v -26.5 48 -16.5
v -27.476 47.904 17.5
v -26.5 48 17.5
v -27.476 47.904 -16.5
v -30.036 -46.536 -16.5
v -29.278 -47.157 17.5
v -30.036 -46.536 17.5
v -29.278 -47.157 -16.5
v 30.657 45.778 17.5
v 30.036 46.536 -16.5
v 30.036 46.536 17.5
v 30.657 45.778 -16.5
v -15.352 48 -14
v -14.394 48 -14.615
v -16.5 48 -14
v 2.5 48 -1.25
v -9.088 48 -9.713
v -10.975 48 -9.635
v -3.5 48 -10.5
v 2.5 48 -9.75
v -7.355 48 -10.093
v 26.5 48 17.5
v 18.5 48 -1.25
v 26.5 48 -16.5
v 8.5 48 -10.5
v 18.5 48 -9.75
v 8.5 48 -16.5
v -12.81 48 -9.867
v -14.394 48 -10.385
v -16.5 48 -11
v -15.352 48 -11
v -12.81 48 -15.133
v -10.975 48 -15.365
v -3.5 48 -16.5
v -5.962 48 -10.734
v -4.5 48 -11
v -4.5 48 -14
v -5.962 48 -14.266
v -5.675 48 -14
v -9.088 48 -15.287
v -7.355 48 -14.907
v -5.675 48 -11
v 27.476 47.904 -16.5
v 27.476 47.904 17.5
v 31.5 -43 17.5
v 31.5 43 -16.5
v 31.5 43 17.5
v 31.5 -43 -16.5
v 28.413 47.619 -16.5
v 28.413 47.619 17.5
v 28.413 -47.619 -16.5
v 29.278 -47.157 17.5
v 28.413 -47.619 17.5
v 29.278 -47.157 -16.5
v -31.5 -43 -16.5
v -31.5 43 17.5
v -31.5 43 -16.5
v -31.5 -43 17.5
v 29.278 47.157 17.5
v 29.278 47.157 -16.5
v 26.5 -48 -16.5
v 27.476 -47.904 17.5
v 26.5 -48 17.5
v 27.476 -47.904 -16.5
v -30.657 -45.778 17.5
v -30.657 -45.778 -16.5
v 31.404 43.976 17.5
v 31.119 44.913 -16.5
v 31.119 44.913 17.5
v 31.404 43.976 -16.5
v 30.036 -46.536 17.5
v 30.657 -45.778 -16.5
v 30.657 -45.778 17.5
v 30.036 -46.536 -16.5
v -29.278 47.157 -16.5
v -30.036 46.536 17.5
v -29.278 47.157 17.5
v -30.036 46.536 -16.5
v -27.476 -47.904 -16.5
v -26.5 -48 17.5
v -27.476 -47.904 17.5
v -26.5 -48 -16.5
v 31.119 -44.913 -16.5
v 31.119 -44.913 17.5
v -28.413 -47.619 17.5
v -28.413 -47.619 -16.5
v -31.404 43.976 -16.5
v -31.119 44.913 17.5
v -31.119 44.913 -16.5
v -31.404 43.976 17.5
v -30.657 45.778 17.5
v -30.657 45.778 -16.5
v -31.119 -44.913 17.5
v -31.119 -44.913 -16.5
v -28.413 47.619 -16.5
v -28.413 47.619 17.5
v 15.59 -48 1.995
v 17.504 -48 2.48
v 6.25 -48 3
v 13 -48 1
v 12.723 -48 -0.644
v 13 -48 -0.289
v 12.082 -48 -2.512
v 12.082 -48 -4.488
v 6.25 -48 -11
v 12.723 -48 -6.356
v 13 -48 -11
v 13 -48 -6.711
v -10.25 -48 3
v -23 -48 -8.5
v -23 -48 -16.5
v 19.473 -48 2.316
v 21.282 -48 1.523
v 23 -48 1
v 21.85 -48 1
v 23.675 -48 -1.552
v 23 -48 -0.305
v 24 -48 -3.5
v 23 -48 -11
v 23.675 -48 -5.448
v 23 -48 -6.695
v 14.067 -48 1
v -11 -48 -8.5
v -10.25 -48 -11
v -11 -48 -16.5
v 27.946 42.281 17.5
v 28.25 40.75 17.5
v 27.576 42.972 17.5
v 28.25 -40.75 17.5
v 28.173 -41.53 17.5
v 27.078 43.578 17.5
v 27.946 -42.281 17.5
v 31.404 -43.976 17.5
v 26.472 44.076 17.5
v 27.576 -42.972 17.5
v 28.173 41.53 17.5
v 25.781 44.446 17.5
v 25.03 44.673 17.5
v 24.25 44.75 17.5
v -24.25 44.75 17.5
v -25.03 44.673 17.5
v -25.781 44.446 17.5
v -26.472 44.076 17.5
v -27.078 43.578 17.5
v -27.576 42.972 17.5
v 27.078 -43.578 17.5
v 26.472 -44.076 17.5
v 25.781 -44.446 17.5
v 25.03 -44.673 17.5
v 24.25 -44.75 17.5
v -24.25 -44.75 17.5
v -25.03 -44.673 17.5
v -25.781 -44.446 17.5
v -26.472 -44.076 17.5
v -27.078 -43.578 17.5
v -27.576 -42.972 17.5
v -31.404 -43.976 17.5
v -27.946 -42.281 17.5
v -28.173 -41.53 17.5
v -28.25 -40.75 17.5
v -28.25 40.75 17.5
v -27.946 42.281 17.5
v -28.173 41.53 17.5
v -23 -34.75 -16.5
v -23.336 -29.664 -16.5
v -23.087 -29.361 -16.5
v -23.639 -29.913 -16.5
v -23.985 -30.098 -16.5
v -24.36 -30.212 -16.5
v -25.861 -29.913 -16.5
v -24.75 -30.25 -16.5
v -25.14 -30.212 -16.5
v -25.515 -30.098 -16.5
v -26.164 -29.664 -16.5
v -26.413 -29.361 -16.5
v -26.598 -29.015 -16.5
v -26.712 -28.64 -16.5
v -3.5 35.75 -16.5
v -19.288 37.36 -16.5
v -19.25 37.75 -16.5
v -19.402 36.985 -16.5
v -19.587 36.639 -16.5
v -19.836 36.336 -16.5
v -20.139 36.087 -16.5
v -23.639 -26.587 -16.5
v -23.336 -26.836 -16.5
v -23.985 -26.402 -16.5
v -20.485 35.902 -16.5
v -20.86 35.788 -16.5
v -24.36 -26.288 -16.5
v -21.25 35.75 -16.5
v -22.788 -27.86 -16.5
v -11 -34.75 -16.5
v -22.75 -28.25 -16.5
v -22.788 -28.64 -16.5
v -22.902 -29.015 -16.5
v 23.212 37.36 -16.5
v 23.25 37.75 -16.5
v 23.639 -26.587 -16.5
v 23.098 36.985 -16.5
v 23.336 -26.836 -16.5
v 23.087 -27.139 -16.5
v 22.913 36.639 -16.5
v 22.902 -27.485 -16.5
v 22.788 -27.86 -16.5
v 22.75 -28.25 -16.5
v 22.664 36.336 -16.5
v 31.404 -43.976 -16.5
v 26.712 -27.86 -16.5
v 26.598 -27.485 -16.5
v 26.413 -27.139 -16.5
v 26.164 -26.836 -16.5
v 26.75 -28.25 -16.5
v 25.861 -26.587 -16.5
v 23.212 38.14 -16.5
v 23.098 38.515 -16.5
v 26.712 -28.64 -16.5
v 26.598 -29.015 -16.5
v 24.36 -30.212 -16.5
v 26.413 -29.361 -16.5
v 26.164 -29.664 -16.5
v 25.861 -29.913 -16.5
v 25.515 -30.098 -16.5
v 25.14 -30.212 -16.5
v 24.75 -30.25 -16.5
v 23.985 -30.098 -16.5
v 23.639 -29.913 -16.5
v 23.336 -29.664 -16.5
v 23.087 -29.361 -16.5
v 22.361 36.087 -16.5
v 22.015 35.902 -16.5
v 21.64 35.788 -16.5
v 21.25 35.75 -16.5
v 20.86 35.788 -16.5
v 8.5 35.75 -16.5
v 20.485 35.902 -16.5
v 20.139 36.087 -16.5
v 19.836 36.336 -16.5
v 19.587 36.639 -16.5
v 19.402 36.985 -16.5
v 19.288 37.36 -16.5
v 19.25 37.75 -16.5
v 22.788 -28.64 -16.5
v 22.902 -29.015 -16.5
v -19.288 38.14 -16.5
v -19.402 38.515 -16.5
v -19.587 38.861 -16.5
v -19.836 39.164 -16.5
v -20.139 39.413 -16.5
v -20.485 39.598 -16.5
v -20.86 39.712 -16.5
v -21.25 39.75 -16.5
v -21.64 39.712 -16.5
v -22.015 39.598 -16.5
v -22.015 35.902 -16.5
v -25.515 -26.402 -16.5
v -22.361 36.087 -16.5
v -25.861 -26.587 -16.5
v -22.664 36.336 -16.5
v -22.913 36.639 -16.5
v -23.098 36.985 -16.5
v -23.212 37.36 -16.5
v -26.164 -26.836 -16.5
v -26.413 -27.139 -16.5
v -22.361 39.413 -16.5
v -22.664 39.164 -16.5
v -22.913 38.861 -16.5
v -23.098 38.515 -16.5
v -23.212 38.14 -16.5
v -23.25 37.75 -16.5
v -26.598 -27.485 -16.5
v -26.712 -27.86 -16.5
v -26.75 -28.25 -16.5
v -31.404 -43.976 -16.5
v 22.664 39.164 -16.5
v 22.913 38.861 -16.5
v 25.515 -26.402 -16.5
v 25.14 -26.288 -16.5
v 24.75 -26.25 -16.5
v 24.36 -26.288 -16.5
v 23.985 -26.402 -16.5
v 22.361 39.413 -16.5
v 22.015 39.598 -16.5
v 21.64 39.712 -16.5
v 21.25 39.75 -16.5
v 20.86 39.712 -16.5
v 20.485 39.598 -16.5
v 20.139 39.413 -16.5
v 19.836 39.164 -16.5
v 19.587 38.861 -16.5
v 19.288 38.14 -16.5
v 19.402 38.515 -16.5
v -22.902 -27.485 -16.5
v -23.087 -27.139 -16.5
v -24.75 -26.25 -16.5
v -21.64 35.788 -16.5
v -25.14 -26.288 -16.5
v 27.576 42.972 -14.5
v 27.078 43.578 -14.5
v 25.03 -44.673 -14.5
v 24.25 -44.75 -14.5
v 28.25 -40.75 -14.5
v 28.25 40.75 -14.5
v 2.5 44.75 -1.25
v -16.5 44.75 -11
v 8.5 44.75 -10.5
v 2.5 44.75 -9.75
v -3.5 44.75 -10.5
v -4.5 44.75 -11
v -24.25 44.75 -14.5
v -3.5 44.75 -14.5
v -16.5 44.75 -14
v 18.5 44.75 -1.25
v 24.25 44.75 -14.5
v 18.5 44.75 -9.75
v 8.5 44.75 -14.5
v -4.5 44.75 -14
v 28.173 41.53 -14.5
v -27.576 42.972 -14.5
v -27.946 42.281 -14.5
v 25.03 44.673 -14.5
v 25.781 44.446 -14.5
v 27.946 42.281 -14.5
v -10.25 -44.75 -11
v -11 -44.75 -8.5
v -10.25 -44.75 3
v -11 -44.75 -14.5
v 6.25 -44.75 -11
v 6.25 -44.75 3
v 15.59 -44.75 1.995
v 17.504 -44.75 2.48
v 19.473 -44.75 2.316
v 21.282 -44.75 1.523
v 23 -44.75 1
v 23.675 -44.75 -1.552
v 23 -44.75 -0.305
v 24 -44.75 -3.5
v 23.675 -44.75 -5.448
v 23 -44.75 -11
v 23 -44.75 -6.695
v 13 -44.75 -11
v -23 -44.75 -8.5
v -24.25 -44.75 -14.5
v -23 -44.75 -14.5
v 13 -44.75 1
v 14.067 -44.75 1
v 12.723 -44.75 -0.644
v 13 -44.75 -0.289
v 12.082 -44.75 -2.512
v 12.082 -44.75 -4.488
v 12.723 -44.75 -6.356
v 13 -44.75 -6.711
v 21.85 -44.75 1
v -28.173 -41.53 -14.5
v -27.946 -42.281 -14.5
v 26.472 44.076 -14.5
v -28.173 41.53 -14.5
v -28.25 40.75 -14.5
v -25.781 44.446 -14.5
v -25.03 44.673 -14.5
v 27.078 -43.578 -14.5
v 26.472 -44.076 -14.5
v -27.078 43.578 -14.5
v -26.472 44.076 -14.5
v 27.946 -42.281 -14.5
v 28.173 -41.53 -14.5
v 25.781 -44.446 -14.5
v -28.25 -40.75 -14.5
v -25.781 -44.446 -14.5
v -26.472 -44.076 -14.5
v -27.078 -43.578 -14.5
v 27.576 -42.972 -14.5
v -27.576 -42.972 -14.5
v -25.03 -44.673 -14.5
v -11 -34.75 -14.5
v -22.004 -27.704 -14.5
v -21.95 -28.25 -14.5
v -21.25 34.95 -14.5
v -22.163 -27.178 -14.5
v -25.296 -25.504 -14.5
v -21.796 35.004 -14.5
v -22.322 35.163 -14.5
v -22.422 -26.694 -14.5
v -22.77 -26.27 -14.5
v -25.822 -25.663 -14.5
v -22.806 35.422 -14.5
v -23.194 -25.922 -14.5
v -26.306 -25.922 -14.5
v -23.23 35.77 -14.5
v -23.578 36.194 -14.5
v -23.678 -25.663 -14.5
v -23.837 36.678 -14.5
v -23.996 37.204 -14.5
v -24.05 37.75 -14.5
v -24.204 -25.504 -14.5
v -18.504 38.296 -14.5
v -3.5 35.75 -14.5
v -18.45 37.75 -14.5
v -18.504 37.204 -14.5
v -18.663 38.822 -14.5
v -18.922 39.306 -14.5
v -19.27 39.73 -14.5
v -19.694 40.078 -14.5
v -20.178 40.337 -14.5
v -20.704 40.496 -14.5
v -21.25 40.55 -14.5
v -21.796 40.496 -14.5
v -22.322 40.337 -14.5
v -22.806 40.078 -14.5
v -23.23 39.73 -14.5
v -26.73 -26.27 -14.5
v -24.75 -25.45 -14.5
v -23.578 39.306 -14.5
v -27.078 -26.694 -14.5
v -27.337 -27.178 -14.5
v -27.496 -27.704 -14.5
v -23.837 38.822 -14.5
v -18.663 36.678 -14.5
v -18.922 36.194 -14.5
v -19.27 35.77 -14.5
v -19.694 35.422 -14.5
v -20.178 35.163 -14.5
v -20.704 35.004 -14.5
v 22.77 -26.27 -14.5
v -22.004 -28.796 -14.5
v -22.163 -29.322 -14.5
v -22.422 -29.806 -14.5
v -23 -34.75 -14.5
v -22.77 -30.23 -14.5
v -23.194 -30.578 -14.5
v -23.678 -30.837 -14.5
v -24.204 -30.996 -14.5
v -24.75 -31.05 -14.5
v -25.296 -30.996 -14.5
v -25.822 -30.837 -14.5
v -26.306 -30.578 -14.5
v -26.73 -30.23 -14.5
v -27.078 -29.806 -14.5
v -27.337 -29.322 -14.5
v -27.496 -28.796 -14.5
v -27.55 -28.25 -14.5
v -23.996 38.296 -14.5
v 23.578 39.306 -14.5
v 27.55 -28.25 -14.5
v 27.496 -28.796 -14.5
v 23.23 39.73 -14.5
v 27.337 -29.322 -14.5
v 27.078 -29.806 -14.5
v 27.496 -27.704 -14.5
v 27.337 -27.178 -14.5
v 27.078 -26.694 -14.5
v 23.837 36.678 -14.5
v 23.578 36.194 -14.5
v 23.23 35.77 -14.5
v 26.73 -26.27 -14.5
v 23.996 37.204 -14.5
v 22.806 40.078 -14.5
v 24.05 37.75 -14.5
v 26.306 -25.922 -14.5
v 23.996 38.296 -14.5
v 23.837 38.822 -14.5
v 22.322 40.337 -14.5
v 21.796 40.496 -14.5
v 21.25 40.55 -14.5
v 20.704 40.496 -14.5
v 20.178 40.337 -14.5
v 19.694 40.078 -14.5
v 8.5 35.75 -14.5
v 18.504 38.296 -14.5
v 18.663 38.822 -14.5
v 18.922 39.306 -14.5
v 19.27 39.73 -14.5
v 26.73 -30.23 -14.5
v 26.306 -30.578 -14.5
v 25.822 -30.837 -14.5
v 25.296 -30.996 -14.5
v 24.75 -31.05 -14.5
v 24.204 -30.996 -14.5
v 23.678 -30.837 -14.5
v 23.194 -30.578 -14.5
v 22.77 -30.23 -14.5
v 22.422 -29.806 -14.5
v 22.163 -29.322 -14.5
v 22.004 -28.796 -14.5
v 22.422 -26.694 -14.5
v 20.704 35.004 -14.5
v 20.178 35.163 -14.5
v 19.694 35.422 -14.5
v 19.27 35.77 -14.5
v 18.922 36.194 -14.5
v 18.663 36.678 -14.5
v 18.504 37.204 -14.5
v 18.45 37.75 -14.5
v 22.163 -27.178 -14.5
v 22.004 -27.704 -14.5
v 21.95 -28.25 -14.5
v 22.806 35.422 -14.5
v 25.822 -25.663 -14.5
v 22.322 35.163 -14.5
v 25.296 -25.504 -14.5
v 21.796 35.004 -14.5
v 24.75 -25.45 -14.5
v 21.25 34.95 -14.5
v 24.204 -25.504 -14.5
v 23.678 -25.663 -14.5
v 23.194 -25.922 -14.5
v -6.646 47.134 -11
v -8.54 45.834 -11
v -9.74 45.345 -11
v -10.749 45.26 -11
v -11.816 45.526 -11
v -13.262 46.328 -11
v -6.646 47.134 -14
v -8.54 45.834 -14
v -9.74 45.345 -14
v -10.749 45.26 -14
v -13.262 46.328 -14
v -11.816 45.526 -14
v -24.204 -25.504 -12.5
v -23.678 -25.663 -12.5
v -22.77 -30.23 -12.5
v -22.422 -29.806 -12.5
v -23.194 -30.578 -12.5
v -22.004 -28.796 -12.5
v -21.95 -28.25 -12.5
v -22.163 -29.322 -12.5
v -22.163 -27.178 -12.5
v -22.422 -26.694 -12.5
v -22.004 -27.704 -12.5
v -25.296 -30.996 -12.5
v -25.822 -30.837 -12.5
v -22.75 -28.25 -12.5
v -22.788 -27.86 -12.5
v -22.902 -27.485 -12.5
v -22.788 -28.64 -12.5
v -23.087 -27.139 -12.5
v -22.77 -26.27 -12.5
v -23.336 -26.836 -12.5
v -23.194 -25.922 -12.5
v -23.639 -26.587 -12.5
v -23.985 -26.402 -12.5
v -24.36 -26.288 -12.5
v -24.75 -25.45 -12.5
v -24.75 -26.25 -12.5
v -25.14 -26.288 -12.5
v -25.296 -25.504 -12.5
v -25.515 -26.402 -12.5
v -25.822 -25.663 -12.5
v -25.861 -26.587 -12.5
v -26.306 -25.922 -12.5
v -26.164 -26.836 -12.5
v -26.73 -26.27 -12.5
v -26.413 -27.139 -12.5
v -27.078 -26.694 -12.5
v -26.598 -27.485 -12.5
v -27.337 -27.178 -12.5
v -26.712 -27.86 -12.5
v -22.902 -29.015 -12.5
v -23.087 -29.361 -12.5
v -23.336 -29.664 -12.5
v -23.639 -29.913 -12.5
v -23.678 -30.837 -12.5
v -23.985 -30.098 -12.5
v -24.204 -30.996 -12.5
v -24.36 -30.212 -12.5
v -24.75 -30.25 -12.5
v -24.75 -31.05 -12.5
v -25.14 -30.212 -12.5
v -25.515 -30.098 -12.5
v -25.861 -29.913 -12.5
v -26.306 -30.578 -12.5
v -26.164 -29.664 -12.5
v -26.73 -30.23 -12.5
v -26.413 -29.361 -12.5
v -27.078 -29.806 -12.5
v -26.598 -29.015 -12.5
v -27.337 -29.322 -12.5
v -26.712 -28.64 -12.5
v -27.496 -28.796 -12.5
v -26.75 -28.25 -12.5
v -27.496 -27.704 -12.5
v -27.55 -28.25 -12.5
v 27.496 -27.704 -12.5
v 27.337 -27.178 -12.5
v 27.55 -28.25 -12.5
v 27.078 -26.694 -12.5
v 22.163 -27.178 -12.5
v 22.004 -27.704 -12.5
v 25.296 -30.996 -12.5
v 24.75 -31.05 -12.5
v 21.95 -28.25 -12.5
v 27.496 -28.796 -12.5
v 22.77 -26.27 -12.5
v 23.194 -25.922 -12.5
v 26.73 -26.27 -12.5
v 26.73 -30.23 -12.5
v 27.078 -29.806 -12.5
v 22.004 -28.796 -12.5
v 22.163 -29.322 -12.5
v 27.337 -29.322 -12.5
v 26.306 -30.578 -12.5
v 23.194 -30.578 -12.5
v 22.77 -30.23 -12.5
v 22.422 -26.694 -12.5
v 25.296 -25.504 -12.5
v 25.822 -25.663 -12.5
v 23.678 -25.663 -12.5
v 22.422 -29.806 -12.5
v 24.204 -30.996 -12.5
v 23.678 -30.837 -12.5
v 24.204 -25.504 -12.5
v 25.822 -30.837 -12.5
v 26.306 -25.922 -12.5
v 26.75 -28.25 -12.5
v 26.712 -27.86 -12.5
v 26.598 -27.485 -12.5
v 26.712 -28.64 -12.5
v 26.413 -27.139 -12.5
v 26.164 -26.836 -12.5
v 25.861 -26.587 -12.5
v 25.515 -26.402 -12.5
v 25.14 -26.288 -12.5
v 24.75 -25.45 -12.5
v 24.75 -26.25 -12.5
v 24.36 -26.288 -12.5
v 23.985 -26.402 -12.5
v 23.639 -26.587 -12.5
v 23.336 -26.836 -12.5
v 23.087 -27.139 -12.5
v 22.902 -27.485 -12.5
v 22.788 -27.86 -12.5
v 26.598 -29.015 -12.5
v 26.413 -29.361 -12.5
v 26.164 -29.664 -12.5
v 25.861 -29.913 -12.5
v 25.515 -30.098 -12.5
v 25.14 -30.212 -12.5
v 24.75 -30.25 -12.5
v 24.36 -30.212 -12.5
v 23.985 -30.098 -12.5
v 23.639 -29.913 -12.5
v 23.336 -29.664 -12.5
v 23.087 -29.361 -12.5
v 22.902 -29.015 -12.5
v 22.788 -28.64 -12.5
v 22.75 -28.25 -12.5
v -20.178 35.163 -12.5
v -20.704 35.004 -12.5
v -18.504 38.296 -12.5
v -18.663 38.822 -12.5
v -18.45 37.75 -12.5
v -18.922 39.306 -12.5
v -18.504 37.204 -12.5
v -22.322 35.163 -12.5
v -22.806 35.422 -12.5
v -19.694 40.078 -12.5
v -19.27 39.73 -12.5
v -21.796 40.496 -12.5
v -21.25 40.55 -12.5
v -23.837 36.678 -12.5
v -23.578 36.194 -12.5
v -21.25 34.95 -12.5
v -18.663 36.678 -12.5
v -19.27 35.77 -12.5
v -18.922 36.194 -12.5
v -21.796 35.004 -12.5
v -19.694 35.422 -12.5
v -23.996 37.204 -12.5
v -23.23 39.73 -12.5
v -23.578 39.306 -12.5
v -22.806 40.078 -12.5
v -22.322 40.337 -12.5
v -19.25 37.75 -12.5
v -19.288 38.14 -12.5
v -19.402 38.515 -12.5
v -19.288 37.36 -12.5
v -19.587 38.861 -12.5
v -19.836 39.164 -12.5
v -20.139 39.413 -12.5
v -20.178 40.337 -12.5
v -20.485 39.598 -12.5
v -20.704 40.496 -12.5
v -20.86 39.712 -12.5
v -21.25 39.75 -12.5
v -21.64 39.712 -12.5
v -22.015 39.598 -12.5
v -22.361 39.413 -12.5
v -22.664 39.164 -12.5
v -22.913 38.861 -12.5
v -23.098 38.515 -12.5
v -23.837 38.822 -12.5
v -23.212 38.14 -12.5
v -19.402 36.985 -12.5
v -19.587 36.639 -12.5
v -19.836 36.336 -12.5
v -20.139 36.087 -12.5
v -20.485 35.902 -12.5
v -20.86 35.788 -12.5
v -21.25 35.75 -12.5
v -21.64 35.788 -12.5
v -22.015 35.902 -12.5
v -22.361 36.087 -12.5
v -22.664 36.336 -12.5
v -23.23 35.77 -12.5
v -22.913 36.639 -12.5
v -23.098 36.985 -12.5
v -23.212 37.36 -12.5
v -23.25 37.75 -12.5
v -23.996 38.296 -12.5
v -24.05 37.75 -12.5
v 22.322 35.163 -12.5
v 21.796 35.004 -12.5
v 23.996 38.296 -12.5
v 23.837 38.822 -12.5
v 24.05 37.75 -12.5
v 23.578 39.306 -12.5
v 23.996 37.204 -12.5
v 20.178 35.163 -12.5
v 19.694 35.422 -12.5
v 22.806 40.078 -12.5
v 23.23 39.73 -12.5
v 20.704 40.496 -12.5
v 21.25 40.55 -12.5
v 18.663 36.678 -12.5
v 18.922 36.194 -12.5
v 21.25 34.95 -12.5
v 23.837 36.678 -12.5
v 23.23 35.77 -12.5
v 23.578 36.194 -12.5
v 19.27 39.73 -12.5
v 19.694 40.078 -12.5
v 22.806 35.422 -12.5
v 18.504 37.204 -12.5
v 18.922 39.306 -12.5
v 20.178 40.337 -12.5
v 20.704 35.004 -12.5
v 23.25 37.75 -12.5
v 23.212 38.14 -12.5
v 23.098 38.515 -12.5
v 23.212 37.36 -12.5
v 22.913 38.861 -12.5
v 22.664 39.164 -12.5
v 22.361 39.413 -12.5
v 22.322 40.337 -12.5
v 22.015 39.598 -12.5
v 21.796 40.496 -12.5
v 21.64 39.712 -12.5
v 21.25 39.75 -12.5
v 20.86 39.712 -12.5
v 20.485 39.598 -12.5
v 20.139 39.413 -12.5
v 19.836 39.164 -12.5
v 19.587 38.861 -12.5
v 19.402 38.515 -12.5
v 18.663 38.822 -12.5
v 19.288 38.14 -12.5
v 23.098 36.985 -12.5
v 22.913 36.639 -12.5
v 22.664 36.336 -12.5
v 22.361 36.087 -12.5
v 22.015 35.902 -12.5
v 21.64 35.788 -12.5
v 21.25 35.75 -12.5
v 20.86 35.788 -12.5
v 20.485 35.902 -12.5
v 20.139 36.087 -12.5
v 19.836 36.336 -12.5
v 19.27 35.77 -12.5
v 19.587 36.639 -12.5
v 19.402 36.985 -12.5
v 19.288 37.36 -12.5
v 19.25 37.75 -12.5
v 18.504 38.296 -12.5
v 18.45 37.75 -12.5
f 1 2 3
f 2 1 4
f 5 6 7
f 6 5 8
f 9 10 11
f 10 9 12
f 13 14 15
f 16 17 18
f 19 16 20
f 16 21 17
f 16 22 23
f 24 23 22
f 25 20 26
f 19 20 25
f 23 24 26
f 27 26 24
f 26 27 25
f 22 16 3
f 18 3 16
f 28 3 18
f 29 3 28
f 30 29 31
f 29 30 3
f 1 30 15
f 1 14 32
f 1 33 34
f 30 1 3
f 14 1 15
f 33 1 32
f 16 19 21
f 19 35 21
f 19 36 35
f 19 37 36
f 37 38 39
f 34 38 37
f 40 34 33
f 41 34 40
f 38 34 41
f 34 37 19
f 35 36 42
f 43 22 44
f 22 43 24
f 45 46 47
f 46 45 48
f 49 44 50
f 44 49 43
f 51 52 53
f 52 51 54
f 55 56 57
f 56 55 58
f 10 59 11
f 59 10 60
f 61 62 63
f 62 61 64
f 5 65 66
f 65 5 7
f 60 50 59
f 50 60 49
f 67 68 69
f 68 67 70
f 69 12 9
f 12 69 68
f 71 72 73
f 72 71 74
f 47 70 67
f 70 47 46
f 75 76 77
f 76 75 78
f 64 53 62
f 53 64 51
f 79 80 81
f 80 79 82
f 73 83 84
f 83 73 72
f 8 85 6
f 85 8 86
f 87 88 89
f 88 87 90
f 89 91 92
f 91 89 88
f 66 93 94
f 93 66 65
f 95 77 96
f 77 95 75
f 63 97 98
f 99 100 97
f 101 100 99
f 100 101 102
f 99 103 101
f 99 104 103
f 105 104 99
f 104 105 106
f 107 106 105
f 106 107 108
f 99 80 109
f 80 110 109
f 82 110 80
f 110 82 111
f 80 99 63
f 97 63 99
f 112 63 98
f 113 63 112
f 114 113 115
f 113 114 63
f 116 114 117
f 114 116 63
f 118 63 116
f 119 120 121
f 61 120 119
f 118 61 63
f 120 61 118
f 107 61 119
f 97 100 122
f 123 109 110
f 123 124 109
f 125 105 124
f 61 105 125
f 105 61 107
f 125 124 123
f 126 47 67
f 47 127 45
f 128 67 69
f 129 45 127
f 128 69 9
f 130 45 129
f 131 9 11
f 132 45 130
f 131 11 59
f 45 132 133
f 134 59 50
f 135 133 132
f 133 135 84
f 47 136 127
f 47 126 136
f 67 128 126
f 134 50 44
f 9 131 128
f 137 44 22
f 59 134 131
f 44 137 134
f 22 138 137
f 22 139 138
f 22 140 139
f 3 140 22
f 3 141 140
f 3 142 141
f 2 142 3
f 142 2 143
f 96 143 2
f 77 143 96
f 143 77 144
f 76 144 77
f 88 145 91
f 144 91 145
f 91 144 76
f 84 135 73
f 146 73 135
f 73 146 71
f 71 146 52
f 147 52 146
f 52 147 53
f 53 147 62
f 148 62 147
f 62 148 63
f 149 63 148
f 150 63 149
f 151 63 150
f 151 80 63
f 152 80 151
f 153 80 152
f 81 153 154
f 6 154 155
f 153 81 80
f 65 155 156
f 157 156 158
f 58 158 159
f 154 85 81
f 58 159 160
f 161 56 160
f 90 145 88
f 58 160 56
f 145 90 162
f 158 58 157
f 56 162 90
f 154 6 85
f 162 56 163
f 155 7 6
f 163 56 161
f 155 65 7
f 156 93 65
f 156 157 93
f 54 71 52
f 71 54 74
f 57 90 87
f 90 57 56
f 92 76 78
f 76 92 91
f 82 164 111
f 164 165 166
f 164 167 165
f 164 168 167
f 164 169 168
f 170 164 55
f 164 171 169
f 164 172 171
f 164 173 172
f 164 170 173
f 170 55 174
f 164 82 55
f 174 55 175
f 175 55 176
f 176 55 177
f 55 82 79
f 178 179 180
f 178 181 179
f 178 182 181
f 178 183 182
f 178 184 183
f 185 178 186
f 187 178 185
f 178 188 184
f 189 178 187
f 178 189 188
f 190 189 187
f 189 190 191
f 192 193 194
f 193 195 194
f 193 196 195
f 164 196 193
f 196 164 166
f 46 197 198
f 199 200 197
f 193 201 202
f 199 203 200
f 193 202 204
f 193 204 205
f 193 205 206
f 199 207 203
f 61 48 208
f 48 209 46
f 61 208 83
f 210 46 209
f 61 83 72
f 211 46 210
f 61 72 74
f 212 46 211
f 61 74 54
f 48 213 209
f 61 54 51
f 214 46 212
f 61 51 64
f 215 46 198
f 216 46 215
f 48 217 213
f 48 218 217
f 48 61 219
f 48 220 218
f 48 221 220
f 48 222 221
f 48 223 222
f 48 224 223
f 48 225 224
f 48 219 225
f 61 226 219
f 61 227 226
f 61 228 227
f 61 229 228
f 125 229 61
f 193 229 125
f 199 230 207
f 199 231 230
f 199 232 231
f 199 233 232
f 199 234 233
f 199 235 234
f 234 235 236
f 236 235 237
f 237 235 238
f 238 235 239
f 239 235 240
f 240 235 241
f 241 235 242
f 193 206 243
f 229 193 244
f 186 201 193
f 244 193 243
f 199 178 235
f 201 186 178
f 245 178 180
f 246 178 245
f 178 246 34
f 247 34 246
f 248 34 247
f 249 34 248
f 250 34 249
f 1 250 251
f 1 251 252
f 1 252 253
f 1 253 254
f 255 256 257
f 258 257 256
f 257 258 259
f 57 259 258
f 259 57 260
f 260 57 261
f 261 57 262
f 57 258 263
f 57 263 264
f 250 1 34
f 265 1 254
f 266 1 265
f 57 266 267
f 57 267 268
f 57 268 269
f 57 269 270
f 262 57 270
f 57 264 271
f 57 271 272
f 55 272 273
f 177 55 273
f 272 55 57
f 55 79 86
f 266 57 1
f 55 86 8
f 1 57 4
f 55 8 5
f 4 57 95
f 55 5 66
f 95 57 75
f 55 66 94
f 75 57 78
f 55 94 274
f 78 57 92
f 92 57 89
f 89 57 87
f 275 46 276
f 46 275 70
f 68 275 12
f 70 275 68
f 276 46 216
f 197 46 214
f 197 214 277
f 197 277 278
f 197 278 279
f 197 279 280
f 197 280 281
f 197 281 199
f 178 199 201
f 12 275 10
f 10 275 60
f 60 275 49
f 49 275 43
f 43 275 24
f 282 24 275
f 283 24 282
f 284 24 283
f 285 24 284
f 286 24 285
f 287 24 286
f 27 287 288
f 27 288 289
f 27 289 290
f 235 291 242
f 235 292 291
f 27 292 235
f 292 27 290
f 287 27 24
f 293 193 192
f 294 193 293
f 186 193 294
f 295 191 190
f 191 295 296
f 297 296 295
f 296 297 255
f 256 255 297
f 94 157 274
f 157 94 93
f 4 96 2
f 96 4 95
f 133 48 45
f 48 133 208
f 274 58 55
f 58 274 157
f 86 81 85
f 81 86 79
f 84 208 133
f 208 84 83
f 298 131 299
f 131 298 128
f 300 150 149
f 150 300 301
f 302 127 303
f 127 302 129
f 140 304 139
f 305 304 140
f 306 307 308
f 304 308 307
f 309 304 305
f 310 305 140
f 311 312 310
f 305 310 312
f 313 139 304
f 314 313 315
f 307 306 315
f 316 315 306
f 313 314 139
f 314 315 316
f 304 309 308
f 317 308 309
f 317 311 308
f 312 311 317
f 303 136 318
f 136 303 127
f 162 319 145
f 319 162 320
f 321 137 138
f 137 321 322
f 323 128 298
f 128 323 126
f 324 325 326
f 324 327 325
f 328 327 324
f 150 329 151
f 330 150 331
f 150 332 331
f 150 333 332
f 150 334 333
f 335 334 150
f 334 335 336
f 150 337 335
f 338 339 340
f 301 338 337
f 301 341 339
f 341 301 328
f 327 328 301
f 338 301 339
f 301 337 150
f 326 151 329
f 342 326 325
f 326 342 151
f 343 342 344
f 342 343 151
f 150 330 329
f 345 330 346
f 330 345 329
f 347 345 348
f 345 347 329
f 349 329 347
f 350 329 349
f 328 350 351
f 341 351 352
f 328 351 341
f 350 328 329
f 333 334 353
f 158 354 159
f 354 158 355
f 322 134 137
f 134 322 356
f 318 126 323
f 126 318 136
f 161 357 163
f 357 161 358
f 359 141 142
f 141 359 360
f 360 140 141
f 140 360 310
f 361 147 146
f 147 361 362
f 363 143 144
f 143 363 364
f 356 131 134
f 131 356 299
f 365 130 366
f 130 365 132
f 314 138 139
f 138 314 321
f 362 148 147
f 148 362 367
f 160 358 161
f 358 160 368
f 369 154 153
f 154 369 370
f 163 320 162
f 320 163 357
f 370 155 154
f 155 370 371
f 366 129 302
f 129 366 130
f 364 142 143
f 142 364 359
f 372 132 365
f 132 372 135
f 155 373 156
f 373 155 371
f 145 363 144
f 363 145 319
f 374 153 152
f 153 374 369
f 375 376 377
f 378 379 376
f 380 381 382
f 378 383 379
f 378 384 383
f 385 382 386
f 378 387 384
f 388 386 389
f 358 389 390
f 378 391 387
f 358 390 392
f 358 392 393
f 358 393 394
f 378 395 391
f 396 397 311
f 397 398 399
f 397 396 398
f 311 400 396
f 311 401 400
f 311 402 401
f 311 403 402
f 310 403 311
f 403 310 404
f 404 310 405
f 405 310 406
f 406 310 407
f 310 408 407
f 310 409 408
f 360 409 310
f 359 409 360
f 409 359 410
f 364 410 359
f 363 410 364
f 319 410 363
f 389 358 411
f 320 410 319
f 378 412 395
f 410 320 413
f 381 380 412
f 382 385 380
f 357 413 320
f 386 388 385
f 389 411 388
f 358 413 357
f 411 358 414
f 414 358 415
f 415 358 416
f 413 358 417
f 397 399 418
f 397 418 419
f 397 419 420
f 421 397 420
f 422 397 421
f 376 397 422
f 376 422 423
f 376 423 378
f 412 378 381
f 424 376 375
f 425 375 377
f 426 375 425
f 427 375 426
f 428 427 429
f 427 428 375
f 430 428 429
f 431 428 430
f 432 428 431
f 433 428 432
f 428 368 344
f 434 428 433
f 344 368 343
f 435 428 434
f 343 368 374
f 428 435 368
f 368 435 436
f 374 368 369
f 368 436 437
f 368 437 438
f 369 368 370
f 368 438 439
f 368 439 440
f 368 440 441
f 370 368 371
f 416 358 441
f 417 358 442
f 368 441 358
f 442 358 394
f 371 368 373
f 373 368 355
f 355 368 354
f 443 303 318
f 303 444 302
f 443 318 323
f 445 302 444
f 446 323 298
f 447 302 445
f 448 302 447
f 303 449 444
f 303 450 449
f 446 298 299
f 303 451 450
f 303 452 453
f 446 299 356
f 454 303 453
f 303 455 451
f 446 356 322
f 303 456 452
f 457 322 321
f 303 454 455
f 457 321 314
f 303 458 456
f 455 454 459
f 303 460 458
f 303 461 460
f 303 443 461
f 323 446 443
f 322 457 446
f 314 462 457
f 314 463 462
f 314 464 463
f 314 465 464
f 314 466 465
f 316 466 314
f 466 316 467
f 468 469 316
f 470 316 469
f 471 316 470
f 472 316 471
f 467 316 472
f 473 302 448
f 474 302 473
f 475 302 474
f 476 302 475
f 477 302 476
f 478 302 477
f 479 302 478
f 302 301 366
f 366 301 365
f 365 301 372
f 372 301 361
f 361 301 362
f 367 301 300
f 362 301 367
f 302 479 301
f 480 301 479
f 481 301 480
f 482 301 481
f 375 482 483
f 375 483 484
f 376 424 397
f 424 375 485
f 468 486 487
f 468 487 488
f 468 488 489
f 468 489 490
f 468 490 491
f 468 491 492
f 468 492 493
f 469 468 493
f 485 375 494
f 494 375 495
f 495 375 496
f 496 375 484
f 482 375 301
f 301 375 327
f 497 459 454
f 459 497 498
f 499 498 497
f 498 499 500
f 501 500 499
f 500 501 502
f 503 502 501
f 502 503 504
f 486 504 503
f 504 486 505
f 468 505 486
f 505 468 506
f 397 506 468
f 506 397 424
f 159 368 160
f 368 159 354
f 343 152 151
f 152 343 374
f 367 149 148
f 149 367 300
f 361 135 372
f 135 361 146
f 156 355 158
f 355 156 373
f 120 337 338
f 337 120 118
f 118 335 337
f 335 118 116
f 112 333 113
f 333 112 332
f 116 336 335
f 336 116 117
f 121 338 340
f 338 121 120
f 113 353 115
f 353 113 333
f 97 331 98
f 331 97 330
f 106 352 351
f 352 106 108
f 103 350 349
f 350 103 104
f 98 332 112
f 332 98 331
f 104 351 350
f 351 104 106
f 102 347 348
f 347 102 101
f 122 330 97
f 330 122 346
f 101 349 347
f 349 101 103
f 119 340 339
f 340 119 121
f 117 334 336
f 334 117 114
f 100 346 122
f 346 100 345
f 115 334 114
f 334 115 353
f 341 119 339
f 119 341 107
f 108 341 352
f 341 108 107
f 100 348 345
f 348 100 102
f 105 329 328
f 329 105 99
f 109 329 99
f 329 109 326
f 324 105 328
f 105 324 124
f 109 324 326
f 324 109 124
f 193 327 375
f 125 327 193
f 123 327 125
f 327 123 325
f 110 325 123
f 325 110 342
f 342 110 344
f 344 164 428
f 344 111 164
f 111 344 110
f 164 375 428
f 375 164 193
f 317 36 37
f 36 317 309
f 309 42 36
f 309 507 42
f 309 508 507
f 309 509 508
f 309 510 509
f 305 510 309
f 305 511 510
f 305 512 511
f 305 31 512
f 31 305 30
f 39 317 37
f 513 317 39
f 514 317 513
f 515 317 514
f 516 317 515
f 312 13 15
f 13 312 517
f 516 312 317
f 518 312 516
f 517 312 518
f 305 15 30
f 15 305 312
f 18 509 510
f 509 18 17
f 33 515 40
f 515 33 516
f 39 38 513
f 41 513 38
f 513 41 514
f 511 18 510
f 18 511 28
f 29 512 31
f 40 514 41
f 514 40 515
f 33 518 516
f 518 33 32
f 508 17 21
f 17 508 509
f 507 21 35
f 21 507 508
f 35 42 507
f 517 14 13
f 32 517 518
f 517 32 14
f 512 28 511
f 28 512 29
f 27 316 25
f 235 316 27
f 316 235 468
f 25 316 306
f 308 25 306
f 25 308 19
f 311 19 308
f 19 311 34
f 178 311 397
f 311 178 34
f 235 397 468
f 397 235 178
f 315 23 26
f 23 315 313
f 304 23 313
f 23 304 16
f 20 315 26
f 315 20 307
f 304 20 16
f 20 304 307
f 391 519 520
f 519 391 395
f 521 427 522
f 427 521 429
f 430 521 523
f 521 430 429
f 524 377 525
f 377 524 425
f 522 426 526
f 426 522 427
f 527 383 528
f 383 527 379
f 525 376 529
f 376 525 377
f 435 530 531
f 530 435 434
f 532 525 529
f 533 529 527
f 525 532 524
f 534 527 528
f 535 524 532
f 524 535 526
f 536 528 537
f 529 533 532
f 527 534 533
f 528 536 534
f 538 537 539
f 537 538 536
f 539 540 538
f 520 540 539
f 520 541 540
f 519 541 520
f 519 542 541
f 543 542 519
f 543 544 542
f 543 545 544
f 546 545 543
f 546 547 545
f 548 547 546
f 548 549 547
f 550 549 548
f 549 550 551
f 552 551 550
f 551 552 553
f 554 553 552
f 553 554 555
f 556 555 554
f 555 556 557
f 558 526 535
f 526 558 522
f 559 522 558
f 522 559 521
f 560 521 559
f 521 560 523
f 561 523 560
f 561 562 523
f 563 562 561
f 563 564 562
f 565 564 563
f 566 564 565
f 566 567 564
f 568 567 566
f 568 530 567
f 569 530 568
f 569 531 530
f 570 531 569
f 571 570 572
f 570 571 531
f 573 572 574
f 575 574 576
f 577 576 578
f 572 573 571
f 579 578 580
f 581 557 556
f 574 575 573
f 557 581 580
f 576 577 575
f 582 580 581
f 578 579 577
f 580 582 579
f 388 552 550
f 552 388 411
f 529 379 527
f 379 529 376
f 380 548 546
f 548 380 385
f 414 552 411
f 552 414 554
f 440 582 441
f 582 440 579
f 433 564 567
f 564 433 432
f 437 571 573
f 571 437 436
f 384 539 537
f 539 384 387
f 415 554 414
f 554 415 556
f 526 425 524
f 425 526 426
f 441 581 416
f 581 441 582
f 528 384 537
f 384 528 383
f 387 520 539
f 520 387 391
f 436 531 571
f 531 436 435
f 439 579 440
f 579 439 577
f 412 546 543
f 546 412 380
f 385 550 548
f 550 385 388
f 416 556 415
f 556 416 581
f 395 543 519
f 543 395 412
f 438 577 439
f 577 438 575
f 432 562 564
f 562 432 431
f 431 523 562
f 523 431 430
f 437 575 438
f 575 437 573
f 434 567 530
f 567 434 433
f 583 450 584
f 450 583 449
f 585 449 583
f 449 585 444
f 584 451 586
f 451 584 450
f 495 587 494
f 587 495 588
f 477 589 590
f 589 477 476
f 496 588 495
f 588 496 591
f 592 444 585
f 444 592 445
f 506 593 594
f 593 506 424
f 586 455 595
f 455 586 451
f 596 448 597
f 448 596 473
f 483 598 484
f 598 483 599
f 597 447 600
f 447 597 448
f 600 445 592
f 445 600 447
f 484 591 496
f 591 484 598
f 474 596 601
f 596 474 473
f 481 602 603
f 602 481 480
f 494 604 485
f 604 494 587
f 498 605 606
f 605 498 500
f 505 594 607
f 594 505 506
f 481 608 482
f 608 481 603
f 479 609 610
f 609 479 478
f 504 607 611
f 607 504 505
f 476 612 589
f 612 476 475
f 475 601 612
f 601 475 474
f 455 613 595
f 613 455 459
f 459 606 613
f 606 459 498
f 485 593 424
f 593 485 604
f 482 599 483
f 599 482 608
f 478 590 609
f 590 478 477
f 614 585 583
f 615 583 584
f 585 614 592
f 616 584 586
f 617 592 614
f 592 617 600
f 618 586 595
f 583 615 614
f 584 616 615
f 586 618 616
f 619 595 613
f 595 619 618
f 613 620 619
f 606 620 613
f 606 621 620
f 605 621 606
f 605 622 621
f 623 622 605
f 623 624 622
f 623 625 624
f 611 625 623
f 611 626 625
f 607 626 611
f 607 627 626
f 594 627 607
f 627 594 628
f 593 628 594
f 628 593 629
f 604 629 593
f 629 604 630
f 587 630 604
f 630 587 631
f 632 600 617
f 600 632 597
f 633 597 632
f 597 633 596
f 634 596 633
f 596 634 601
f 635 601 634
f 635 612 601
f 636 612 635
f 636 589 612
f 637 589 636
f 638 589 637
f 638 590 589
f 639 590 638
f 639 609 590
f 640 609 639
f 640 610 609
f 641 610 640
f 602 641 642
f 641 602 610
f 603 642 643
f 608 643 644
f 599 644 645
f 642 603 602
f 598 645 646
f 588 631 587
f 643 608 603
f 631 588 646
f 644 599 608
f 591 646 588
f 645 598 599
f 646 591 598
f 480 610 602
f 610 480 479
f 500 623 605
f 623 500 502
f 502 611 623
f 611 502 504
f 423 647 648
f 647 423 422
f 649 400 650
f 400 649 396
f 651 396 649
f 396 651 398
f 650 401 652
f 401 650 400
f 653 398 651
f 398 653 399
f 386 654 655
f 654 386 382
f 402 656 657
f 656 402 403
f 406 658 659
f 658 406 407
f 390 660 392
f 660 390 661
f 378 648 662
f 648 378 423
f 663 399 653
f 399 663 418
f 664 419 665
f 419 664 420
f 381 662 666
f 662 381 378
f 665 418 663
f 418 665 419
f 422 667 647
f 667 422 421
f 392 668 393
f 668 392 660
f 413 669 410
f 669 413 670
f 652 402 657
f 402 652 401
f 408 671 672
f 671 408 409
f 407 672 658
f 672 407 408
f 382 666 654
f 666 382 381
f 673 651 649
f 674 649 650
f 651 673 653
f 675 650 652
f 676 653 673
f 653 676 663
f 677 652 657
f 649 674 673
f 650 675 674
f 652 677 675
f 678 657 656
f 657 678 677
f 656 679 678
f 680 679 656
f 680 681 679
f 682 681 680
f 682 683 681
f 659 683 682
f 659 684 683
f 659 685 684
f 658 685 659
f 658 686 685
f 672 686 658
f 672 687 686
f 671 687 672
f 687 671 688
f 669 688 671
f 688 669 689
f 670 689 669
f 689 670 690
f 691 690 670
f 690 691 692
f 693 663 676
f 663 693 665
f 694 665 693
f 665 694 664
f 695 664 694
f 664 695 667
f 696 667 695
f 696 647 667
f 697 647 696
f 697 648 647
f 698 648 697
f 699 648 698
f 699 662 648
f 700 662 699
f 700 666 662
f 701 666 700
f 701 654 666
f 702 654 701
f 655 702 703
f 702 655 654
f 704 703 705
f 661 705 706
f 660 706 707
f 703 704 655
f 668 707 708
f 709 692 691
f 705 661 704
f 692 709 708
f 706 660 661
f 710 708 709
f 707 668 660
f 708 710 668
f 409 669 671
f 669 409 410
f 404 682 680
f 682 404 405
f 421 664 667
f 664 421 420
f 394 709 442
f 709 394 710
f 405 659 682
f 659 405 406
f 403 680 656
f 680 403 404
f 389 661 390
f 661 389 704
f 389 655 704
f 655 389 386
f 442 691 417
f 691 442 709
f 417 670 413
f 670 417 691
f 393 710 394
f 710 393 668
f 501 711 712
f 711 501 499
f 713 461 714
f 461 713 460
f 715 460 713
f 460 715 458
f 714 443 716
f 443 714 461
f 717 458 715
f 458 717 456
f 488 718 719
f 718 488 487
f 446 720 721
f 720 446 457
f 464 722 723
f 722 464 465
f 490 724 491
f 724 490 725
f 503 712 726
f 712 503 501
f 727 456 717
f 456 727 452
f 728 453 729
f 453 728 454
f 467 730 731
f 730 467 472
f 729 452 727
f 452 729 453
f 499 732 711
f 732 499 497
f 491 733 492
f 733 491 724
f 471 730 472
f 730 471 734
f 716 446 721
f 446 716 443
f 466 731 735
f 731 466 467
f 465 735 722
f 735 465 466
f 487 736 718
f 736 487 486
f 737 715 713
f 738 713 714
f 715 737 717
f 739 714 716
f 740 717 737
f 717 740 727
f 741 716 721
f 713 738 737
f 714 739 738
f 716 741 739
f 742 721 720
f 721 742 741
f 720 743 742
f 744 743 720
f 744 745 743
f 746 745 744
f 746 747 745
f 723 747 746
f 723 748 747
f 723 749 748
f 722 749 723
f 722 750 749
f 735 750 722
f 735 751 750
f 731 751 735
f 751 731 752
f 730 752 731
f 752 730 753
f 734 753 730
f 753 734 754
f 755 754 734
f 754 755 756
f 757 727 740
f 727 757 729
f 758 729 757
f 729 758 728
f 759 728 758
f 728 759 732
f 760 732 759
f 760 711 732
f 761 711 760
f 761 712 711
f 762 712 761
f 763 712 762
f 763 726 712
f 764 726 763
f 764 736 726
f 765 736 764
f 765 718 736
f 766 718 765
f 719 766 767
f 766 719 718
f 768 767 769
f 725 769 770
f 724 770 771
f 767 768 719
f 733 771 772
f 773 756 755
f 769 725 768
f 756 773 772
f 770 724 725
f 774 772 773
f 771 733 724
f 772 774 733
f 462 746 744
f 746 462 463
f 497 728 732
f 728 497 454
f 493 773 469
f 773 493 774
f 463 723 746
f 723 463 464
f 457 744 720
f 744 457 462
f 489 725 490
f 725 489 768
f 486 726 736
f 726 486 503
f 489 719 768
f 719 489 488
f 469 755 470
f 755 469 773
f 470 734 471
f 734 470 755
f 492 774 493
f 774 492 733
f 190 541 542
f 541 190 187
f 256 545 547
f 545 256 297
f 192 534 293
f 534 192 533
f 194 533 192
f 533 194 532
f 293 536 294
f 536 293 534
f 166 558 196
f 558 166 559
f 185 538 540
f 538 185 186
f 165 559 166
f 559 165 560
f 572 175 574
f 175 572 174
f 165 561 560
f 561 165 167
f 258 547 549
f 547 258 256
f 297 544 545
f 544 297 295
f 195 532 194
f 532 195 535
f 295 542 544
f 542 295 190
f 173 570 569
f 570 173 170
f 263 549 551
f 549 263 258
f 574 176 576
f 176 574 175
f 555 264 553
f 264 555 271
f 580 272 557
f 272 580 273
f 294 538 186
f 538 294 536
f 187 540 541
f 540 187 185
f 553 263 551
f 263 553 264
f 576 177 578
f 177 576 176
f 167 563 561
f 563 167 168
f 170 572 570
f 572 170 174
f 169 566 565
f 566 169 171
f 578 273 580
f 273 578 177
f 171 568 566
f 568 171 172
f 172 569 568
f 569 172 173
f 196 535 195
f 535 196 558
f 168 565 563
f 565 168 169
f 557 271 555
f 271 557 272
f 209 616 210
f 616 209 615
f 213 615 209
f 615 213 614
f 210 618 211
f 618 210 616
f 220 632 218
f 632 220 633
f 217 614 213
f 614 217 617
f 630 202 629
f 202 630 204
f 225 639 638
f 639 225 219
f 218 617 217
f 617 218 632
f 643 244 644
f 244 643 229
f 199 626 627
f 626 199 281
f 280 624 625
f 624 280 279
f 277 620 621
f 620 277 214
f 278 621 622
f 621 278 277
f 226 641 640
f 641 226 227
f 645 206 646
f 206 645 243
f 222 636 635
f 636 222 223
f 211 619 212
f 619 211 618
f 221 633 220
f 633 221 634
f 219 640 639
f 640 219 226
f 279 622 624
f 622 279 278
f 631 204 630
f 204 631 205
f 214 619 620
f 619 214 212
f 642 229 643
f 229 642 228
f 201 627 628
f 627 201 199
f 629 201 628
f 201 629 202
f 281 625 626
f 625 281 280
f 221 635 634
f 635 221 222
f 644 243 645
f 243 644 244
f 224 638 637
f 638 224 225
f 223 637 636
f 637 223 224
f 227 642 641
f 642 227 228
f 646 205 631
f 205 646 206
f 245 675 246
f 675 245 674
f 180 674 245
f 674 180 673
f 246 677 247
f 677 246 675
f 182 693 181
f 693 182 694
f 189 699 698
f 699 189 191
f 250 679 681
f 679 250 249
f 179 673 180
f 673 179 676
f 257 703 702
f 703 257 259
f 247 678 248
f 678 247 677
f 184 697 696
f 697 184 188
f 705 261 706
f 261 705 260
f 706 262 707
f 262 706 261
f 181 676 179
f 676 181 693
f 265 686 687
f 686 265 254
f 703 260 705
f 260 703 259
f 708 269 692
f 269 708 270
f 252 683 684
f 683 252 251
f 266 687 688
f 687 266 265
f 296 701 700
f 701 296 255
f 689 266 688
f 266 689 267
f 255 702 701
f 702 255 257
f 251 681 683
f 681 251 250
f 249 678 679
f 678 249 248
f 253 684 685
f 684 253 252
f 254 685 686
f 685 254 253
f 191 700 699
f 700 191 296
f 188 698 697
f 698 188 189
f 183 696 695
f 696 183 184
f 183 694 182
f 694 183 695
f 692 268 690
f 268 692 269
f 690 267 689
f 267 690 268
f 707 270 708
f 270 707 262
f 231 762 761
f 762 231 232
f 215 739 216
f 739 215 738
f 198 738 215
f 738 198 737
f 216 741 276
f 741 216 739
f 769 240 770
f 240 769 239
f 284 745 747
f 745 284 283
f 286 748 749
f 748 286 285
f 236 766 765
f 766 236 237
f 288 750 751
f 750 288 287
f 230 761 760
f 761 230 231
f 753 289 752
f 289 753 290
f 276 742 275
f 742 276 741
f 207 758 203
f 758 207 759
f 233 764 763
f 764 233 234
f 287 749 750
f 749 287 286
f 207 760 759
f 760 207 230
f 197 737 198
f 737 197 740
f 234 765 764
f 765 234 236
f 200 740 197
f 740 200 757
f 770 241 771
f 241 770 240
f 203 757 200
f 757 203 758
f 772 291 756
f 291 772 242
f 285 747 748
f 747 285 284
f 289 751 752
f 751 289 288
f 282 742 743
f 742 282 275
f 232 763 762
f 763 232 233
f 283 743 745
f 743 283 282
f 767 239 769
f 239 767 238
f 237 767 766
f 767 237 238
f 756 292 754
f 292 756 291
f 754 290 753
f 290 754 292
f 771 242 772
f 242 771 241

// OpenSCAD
wall_thickness=6.5;
base_thickness=2.0;
bb_depth=33;
bb_width=56.5;
bb_height=89.5;
bb_curve_corner=10;

peg_pow_front=16.5;
peg_pow_side=3.5;

peg_sd_front=7;
peg_sd_side=7;

peg_outer_radius=2.8;
peg_inner_radius=2.0;

module RoundedBB(extra_width,extra_height,depth,curve=bb_curve_corner) {
  minkowski() {
		cube([bb_width-curve+extra_width,bb_height-curve+extra_height,depth],center=true);
		cylinder(r=curve/2, height=depth, $fn=32);
	}
}

module BeagleBox(curve=bb_curve_corner) {
	difference() {
		RoundedBB(wall_thickness, wall_thickness, bb_depth, curve);
		translate([0,0,base_thickness])
			RoundedBB(0, 0, bb_depth, curve-2);
	}	
}

difference() {
	union() {
		difference() {
			BeagleBox();

			translate([0,0,-bb_depth/2+9]) {
				// -- Bottom End --

				// Power connector
%				translate([18,-bb_height/2,2.5])
					cube([10,10,12],center=true);
				translate( [18,-45,4] )
					rotate( [90,0,0] )
					cylinder( r=6, h=9, center=true );
				translate([18,-bb_height/2,2.5])
					cube([10,10,12],center=true);
				// Ethernet port
				translate([-2,-bb_height/2,3.5])
					cube([16.5,10,14],center=true);

				// Mini USB (Underneath)
				// translate([-23,-bb_height/2-5,-16])     // protruding
				// translate([-23,-bb_height/2,-9+0.334])  // thin layer underneath
				//	cube([10,12,base_thickness-0.3333]);
				translate([-23,-bb_height/2-10,-10])
					cube([12,20,9]);
				// original mini USB, doesn't fit cable
%				translate([-22,-bb_height/2-10,-12])
					cube([10,20,8]);

				// -- Top End --

				// SD Card slot
				translate([-6.5-4,bb_height/2,-5.0])
					cube([12,10,3], center=true);
				// Original SD slot
%				translate([-6.5,bb_height/2,-5.5])
					cube([12,10,2], center=true);
				// thumb depression for inserting card
				translate([-6.5-4,bb_height/2+3.5,-5.0])
					scale( [1,1,0.5] )
					rotate( [90,0,0] )
					cylinder( r1=6, r2=0, h=6 );
				// HDMI port
				translate([-6.5+3.0,bb_height/2-9,-12.0])
					cube([12,20,9]);
				// USB port
				translate([10.5,bb_height/2,2.0])
					cube([16,10,8.5],center=true);
			}
		}

		// Pegs
		translate([0,0,-bb_depth/2+9]) {
			// Pegs on "power" end
			translate([-bb_width/2+peg_pow_side,-bb_height/2+peg_pow_front,-6])
				cylinder(r=peg_outer_radius,h=2,$fn=32,center=true);
			translate([bb_width/2-peg_pow_side,-bb_height/2+peg_pow_front,-6])
				cylinder(r=peg_outer_radius,h=2,$fn=32,center=true);

			// Pegs on "sd card" end
			translate([-bb_width/2+peg_sd_side,bb_height/2-peg_sd_front,-6])
				cylinder(r=peg_outer_radius,h=2,$fn=32,center=true);
			translate([bb_width/2-peg_sd_side,bb_height/2-peg_sd_front,-6])
				cylinder(r=peg_outer_radius,h=2,$fn=32,center=true);
		}
	}

	// Drill holes through pegs and floor
	translate([0,0,-bb_depth/2+9]) {
		// Pegs on "power" end
		translate([-bb_width/2+peg_pow_side,-bb_height/2+peg_pow_front,-5])
			cylinder(r=peg_inner_radius,h=10,$fn=32,center=true);
		translate([bb_width/2-peg_pow_side,-bb_height/2+peg_pow_front,-5])
			cylinder(r=peg_inner_radius,h=10,$fn=32,center=true);

		// Pegs on "sd card" end
		translate([-bb_width/2+peg_sd_side,bb_height/2-peg_sd_front,-5])
			cylinder(r=peg_inner_radius,h=10,$fn=32,center=true);
		translate([bb_width/2-peg_sd_side,bb_height/2-peg_sd_front,-5])
			cylinder(r=peg_inner_radius,h=10,$fn=32,center=true);
	}
}
